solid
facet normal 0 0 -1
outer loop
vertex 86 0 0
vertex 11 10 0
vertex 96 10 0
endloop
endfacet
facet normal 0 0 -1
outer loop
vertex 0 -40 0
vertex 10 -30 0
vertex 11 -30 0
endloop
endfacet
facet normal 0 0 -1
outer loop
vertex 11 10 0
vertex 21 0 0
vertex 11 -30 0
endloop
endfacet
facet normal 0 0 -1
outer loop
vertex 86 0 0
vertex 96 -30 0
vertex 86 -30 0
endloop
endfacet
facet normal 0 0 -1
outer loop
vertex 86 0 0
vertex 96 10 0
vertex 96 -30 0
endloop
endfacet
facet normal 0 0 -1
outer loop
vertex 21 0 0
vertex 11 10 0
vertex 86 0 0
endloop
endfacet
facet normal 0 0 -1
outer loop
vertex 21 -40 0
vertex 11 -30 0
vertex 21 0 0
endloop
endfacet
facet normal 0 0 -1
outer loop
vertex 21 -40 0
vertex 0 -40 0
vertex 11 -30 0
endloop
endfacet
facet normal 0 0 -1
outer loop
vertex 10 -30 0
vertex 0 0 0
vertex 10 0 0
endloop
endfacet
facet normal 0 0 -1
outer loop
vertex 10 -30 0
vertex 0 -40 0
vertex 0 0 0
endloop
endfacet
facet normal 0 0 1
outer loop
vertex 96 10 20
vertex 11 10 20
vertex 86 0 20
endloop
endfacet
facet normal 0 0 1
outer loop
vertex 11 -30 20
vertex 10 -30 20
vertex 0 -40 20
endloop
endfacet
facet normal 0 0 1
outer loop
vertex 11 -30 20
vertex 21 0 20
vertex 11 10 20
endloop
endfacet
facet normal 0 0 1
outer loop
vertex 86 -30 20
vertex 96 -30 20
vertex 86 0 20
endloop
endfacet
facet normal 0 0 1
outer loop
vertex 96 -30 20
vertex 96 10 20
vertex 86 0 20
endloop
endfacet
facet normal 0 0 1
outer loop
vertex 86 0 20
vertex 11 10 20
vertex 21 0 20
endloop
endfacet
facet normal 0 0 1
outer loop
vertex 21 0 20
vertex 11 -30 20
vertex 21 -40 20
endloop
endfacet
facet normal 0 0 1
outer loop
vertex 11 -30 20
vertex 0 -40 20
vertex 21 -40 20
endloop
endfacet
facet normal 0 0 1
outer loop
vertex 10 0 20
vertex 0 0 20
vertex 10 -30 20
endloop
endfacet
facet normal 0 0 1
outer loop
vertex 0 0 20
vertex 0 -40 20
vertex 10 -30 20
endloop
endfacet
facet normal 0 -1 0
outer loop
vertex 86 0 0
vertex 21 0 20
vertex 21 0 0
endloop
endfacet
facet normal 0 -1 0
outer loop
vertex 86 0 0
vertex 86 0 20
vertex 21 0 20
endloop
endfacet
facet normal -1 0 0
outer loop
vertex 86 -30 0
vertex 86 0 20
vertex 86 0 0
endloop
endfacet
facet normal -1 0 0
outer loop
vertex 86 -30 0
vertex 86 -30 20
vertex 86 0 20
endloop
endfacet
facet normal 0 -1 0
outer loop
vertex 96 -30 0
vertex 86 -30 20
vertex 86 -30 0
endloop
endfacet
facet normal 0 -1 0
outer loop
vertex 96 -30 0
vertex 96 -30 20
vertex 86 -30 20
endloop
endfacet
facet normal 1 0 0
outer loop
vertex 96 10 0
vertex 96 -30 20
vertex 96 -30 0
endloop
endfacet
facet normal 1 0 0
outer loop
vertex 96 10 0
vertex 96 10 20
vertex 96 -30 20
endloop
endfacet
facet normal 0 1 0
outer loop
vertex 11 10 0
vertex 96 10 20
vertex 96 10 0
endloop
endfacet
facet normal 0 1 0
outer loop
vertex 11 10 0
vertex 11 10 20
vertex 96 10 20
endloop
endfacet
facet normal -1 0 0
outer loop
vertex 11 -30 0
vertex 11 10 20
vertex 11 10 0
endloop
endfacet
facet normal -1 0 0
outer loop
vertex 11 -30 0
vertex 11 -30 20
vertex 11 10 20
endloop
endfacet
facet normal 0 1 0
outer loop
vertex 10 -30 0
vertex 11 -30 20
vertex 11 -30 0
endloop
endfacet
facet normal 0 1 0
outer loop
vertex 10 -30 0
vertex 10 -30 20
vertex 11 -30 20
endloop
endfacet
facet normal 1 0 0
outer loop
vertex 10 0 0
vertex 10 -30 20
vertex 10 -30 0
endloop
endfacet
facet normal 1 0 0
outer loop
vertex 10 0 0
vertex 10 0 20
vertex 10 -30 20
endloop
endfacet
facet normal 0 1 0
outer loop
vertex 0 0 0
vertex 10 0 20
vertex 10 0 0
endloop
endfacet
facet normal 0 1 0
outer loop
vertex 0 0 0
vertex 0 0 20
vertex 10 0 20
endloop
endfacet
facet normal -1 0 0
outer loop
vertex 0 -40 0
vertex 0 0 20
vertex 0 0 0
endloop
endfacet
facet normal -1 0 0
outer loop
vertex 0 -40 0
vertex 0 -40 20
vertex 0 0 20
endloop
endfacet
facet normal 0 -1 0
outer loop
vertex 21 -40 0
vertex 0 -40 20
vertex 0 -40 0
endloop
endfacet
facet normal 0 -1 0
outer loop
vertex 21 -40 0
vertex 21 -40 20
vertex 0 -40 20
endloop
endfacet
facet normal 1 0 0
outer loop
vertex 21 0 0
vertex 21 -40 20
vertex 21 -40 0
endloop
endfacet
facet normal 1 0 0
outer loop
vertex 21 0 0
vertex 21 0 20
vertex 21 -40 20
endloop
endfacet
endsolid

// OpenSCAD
// Generated by SolidPython 1.1.3 on 2023-07-28 17:52:11
$fn = 9;


linear_extrude(height = 20, slices = 1) {
	polygon(points = [[0, 0], [0, -40], [21.0000000000, -40], [21.0000000000, 0], [86.0000000000, 0], [86.0000000000, -30], [96.0000000000, -30], [96.0000000000, 10], [21.0000000000, 10], [11.0000000000, 10], [11.0000000000, -30], [10, -30], [10, 0]]);
}
/***********************************************
*********      SolidPython code:      **********
************************************************
 
from solid import *
from solid.utils import *

cm = 10

width = 2*cm
head_stand_width = 6.5*cm
height = 3*cm
gap = 0.1*cm
m = 1*cm

hook = linear_extrude(height=width, slices=1)(
    polygon([
        [0, 0],
        [0, -height-m],
        [m+gap+m, -height-m],
        [m+gap+m, 0],
        [m+gap+m+head_stand_width, 0],
        [m+gap+m+head_stand_width, -height],
        [m+gap+m+head_stand_width+m, -height],
        [m+gap+m+head_stand_width+m, m],
        [m+gap+m, m],
        [m+gap, m],
        [m+gap, -height],
        [m, -height],
        [m, 0],
    ])
)

fn = 9
scad_render_to_file(hook, "head-stand-magnet-board.scad",
                    file_header='$fn = %d;' % fn)
 
 
************************************************/
